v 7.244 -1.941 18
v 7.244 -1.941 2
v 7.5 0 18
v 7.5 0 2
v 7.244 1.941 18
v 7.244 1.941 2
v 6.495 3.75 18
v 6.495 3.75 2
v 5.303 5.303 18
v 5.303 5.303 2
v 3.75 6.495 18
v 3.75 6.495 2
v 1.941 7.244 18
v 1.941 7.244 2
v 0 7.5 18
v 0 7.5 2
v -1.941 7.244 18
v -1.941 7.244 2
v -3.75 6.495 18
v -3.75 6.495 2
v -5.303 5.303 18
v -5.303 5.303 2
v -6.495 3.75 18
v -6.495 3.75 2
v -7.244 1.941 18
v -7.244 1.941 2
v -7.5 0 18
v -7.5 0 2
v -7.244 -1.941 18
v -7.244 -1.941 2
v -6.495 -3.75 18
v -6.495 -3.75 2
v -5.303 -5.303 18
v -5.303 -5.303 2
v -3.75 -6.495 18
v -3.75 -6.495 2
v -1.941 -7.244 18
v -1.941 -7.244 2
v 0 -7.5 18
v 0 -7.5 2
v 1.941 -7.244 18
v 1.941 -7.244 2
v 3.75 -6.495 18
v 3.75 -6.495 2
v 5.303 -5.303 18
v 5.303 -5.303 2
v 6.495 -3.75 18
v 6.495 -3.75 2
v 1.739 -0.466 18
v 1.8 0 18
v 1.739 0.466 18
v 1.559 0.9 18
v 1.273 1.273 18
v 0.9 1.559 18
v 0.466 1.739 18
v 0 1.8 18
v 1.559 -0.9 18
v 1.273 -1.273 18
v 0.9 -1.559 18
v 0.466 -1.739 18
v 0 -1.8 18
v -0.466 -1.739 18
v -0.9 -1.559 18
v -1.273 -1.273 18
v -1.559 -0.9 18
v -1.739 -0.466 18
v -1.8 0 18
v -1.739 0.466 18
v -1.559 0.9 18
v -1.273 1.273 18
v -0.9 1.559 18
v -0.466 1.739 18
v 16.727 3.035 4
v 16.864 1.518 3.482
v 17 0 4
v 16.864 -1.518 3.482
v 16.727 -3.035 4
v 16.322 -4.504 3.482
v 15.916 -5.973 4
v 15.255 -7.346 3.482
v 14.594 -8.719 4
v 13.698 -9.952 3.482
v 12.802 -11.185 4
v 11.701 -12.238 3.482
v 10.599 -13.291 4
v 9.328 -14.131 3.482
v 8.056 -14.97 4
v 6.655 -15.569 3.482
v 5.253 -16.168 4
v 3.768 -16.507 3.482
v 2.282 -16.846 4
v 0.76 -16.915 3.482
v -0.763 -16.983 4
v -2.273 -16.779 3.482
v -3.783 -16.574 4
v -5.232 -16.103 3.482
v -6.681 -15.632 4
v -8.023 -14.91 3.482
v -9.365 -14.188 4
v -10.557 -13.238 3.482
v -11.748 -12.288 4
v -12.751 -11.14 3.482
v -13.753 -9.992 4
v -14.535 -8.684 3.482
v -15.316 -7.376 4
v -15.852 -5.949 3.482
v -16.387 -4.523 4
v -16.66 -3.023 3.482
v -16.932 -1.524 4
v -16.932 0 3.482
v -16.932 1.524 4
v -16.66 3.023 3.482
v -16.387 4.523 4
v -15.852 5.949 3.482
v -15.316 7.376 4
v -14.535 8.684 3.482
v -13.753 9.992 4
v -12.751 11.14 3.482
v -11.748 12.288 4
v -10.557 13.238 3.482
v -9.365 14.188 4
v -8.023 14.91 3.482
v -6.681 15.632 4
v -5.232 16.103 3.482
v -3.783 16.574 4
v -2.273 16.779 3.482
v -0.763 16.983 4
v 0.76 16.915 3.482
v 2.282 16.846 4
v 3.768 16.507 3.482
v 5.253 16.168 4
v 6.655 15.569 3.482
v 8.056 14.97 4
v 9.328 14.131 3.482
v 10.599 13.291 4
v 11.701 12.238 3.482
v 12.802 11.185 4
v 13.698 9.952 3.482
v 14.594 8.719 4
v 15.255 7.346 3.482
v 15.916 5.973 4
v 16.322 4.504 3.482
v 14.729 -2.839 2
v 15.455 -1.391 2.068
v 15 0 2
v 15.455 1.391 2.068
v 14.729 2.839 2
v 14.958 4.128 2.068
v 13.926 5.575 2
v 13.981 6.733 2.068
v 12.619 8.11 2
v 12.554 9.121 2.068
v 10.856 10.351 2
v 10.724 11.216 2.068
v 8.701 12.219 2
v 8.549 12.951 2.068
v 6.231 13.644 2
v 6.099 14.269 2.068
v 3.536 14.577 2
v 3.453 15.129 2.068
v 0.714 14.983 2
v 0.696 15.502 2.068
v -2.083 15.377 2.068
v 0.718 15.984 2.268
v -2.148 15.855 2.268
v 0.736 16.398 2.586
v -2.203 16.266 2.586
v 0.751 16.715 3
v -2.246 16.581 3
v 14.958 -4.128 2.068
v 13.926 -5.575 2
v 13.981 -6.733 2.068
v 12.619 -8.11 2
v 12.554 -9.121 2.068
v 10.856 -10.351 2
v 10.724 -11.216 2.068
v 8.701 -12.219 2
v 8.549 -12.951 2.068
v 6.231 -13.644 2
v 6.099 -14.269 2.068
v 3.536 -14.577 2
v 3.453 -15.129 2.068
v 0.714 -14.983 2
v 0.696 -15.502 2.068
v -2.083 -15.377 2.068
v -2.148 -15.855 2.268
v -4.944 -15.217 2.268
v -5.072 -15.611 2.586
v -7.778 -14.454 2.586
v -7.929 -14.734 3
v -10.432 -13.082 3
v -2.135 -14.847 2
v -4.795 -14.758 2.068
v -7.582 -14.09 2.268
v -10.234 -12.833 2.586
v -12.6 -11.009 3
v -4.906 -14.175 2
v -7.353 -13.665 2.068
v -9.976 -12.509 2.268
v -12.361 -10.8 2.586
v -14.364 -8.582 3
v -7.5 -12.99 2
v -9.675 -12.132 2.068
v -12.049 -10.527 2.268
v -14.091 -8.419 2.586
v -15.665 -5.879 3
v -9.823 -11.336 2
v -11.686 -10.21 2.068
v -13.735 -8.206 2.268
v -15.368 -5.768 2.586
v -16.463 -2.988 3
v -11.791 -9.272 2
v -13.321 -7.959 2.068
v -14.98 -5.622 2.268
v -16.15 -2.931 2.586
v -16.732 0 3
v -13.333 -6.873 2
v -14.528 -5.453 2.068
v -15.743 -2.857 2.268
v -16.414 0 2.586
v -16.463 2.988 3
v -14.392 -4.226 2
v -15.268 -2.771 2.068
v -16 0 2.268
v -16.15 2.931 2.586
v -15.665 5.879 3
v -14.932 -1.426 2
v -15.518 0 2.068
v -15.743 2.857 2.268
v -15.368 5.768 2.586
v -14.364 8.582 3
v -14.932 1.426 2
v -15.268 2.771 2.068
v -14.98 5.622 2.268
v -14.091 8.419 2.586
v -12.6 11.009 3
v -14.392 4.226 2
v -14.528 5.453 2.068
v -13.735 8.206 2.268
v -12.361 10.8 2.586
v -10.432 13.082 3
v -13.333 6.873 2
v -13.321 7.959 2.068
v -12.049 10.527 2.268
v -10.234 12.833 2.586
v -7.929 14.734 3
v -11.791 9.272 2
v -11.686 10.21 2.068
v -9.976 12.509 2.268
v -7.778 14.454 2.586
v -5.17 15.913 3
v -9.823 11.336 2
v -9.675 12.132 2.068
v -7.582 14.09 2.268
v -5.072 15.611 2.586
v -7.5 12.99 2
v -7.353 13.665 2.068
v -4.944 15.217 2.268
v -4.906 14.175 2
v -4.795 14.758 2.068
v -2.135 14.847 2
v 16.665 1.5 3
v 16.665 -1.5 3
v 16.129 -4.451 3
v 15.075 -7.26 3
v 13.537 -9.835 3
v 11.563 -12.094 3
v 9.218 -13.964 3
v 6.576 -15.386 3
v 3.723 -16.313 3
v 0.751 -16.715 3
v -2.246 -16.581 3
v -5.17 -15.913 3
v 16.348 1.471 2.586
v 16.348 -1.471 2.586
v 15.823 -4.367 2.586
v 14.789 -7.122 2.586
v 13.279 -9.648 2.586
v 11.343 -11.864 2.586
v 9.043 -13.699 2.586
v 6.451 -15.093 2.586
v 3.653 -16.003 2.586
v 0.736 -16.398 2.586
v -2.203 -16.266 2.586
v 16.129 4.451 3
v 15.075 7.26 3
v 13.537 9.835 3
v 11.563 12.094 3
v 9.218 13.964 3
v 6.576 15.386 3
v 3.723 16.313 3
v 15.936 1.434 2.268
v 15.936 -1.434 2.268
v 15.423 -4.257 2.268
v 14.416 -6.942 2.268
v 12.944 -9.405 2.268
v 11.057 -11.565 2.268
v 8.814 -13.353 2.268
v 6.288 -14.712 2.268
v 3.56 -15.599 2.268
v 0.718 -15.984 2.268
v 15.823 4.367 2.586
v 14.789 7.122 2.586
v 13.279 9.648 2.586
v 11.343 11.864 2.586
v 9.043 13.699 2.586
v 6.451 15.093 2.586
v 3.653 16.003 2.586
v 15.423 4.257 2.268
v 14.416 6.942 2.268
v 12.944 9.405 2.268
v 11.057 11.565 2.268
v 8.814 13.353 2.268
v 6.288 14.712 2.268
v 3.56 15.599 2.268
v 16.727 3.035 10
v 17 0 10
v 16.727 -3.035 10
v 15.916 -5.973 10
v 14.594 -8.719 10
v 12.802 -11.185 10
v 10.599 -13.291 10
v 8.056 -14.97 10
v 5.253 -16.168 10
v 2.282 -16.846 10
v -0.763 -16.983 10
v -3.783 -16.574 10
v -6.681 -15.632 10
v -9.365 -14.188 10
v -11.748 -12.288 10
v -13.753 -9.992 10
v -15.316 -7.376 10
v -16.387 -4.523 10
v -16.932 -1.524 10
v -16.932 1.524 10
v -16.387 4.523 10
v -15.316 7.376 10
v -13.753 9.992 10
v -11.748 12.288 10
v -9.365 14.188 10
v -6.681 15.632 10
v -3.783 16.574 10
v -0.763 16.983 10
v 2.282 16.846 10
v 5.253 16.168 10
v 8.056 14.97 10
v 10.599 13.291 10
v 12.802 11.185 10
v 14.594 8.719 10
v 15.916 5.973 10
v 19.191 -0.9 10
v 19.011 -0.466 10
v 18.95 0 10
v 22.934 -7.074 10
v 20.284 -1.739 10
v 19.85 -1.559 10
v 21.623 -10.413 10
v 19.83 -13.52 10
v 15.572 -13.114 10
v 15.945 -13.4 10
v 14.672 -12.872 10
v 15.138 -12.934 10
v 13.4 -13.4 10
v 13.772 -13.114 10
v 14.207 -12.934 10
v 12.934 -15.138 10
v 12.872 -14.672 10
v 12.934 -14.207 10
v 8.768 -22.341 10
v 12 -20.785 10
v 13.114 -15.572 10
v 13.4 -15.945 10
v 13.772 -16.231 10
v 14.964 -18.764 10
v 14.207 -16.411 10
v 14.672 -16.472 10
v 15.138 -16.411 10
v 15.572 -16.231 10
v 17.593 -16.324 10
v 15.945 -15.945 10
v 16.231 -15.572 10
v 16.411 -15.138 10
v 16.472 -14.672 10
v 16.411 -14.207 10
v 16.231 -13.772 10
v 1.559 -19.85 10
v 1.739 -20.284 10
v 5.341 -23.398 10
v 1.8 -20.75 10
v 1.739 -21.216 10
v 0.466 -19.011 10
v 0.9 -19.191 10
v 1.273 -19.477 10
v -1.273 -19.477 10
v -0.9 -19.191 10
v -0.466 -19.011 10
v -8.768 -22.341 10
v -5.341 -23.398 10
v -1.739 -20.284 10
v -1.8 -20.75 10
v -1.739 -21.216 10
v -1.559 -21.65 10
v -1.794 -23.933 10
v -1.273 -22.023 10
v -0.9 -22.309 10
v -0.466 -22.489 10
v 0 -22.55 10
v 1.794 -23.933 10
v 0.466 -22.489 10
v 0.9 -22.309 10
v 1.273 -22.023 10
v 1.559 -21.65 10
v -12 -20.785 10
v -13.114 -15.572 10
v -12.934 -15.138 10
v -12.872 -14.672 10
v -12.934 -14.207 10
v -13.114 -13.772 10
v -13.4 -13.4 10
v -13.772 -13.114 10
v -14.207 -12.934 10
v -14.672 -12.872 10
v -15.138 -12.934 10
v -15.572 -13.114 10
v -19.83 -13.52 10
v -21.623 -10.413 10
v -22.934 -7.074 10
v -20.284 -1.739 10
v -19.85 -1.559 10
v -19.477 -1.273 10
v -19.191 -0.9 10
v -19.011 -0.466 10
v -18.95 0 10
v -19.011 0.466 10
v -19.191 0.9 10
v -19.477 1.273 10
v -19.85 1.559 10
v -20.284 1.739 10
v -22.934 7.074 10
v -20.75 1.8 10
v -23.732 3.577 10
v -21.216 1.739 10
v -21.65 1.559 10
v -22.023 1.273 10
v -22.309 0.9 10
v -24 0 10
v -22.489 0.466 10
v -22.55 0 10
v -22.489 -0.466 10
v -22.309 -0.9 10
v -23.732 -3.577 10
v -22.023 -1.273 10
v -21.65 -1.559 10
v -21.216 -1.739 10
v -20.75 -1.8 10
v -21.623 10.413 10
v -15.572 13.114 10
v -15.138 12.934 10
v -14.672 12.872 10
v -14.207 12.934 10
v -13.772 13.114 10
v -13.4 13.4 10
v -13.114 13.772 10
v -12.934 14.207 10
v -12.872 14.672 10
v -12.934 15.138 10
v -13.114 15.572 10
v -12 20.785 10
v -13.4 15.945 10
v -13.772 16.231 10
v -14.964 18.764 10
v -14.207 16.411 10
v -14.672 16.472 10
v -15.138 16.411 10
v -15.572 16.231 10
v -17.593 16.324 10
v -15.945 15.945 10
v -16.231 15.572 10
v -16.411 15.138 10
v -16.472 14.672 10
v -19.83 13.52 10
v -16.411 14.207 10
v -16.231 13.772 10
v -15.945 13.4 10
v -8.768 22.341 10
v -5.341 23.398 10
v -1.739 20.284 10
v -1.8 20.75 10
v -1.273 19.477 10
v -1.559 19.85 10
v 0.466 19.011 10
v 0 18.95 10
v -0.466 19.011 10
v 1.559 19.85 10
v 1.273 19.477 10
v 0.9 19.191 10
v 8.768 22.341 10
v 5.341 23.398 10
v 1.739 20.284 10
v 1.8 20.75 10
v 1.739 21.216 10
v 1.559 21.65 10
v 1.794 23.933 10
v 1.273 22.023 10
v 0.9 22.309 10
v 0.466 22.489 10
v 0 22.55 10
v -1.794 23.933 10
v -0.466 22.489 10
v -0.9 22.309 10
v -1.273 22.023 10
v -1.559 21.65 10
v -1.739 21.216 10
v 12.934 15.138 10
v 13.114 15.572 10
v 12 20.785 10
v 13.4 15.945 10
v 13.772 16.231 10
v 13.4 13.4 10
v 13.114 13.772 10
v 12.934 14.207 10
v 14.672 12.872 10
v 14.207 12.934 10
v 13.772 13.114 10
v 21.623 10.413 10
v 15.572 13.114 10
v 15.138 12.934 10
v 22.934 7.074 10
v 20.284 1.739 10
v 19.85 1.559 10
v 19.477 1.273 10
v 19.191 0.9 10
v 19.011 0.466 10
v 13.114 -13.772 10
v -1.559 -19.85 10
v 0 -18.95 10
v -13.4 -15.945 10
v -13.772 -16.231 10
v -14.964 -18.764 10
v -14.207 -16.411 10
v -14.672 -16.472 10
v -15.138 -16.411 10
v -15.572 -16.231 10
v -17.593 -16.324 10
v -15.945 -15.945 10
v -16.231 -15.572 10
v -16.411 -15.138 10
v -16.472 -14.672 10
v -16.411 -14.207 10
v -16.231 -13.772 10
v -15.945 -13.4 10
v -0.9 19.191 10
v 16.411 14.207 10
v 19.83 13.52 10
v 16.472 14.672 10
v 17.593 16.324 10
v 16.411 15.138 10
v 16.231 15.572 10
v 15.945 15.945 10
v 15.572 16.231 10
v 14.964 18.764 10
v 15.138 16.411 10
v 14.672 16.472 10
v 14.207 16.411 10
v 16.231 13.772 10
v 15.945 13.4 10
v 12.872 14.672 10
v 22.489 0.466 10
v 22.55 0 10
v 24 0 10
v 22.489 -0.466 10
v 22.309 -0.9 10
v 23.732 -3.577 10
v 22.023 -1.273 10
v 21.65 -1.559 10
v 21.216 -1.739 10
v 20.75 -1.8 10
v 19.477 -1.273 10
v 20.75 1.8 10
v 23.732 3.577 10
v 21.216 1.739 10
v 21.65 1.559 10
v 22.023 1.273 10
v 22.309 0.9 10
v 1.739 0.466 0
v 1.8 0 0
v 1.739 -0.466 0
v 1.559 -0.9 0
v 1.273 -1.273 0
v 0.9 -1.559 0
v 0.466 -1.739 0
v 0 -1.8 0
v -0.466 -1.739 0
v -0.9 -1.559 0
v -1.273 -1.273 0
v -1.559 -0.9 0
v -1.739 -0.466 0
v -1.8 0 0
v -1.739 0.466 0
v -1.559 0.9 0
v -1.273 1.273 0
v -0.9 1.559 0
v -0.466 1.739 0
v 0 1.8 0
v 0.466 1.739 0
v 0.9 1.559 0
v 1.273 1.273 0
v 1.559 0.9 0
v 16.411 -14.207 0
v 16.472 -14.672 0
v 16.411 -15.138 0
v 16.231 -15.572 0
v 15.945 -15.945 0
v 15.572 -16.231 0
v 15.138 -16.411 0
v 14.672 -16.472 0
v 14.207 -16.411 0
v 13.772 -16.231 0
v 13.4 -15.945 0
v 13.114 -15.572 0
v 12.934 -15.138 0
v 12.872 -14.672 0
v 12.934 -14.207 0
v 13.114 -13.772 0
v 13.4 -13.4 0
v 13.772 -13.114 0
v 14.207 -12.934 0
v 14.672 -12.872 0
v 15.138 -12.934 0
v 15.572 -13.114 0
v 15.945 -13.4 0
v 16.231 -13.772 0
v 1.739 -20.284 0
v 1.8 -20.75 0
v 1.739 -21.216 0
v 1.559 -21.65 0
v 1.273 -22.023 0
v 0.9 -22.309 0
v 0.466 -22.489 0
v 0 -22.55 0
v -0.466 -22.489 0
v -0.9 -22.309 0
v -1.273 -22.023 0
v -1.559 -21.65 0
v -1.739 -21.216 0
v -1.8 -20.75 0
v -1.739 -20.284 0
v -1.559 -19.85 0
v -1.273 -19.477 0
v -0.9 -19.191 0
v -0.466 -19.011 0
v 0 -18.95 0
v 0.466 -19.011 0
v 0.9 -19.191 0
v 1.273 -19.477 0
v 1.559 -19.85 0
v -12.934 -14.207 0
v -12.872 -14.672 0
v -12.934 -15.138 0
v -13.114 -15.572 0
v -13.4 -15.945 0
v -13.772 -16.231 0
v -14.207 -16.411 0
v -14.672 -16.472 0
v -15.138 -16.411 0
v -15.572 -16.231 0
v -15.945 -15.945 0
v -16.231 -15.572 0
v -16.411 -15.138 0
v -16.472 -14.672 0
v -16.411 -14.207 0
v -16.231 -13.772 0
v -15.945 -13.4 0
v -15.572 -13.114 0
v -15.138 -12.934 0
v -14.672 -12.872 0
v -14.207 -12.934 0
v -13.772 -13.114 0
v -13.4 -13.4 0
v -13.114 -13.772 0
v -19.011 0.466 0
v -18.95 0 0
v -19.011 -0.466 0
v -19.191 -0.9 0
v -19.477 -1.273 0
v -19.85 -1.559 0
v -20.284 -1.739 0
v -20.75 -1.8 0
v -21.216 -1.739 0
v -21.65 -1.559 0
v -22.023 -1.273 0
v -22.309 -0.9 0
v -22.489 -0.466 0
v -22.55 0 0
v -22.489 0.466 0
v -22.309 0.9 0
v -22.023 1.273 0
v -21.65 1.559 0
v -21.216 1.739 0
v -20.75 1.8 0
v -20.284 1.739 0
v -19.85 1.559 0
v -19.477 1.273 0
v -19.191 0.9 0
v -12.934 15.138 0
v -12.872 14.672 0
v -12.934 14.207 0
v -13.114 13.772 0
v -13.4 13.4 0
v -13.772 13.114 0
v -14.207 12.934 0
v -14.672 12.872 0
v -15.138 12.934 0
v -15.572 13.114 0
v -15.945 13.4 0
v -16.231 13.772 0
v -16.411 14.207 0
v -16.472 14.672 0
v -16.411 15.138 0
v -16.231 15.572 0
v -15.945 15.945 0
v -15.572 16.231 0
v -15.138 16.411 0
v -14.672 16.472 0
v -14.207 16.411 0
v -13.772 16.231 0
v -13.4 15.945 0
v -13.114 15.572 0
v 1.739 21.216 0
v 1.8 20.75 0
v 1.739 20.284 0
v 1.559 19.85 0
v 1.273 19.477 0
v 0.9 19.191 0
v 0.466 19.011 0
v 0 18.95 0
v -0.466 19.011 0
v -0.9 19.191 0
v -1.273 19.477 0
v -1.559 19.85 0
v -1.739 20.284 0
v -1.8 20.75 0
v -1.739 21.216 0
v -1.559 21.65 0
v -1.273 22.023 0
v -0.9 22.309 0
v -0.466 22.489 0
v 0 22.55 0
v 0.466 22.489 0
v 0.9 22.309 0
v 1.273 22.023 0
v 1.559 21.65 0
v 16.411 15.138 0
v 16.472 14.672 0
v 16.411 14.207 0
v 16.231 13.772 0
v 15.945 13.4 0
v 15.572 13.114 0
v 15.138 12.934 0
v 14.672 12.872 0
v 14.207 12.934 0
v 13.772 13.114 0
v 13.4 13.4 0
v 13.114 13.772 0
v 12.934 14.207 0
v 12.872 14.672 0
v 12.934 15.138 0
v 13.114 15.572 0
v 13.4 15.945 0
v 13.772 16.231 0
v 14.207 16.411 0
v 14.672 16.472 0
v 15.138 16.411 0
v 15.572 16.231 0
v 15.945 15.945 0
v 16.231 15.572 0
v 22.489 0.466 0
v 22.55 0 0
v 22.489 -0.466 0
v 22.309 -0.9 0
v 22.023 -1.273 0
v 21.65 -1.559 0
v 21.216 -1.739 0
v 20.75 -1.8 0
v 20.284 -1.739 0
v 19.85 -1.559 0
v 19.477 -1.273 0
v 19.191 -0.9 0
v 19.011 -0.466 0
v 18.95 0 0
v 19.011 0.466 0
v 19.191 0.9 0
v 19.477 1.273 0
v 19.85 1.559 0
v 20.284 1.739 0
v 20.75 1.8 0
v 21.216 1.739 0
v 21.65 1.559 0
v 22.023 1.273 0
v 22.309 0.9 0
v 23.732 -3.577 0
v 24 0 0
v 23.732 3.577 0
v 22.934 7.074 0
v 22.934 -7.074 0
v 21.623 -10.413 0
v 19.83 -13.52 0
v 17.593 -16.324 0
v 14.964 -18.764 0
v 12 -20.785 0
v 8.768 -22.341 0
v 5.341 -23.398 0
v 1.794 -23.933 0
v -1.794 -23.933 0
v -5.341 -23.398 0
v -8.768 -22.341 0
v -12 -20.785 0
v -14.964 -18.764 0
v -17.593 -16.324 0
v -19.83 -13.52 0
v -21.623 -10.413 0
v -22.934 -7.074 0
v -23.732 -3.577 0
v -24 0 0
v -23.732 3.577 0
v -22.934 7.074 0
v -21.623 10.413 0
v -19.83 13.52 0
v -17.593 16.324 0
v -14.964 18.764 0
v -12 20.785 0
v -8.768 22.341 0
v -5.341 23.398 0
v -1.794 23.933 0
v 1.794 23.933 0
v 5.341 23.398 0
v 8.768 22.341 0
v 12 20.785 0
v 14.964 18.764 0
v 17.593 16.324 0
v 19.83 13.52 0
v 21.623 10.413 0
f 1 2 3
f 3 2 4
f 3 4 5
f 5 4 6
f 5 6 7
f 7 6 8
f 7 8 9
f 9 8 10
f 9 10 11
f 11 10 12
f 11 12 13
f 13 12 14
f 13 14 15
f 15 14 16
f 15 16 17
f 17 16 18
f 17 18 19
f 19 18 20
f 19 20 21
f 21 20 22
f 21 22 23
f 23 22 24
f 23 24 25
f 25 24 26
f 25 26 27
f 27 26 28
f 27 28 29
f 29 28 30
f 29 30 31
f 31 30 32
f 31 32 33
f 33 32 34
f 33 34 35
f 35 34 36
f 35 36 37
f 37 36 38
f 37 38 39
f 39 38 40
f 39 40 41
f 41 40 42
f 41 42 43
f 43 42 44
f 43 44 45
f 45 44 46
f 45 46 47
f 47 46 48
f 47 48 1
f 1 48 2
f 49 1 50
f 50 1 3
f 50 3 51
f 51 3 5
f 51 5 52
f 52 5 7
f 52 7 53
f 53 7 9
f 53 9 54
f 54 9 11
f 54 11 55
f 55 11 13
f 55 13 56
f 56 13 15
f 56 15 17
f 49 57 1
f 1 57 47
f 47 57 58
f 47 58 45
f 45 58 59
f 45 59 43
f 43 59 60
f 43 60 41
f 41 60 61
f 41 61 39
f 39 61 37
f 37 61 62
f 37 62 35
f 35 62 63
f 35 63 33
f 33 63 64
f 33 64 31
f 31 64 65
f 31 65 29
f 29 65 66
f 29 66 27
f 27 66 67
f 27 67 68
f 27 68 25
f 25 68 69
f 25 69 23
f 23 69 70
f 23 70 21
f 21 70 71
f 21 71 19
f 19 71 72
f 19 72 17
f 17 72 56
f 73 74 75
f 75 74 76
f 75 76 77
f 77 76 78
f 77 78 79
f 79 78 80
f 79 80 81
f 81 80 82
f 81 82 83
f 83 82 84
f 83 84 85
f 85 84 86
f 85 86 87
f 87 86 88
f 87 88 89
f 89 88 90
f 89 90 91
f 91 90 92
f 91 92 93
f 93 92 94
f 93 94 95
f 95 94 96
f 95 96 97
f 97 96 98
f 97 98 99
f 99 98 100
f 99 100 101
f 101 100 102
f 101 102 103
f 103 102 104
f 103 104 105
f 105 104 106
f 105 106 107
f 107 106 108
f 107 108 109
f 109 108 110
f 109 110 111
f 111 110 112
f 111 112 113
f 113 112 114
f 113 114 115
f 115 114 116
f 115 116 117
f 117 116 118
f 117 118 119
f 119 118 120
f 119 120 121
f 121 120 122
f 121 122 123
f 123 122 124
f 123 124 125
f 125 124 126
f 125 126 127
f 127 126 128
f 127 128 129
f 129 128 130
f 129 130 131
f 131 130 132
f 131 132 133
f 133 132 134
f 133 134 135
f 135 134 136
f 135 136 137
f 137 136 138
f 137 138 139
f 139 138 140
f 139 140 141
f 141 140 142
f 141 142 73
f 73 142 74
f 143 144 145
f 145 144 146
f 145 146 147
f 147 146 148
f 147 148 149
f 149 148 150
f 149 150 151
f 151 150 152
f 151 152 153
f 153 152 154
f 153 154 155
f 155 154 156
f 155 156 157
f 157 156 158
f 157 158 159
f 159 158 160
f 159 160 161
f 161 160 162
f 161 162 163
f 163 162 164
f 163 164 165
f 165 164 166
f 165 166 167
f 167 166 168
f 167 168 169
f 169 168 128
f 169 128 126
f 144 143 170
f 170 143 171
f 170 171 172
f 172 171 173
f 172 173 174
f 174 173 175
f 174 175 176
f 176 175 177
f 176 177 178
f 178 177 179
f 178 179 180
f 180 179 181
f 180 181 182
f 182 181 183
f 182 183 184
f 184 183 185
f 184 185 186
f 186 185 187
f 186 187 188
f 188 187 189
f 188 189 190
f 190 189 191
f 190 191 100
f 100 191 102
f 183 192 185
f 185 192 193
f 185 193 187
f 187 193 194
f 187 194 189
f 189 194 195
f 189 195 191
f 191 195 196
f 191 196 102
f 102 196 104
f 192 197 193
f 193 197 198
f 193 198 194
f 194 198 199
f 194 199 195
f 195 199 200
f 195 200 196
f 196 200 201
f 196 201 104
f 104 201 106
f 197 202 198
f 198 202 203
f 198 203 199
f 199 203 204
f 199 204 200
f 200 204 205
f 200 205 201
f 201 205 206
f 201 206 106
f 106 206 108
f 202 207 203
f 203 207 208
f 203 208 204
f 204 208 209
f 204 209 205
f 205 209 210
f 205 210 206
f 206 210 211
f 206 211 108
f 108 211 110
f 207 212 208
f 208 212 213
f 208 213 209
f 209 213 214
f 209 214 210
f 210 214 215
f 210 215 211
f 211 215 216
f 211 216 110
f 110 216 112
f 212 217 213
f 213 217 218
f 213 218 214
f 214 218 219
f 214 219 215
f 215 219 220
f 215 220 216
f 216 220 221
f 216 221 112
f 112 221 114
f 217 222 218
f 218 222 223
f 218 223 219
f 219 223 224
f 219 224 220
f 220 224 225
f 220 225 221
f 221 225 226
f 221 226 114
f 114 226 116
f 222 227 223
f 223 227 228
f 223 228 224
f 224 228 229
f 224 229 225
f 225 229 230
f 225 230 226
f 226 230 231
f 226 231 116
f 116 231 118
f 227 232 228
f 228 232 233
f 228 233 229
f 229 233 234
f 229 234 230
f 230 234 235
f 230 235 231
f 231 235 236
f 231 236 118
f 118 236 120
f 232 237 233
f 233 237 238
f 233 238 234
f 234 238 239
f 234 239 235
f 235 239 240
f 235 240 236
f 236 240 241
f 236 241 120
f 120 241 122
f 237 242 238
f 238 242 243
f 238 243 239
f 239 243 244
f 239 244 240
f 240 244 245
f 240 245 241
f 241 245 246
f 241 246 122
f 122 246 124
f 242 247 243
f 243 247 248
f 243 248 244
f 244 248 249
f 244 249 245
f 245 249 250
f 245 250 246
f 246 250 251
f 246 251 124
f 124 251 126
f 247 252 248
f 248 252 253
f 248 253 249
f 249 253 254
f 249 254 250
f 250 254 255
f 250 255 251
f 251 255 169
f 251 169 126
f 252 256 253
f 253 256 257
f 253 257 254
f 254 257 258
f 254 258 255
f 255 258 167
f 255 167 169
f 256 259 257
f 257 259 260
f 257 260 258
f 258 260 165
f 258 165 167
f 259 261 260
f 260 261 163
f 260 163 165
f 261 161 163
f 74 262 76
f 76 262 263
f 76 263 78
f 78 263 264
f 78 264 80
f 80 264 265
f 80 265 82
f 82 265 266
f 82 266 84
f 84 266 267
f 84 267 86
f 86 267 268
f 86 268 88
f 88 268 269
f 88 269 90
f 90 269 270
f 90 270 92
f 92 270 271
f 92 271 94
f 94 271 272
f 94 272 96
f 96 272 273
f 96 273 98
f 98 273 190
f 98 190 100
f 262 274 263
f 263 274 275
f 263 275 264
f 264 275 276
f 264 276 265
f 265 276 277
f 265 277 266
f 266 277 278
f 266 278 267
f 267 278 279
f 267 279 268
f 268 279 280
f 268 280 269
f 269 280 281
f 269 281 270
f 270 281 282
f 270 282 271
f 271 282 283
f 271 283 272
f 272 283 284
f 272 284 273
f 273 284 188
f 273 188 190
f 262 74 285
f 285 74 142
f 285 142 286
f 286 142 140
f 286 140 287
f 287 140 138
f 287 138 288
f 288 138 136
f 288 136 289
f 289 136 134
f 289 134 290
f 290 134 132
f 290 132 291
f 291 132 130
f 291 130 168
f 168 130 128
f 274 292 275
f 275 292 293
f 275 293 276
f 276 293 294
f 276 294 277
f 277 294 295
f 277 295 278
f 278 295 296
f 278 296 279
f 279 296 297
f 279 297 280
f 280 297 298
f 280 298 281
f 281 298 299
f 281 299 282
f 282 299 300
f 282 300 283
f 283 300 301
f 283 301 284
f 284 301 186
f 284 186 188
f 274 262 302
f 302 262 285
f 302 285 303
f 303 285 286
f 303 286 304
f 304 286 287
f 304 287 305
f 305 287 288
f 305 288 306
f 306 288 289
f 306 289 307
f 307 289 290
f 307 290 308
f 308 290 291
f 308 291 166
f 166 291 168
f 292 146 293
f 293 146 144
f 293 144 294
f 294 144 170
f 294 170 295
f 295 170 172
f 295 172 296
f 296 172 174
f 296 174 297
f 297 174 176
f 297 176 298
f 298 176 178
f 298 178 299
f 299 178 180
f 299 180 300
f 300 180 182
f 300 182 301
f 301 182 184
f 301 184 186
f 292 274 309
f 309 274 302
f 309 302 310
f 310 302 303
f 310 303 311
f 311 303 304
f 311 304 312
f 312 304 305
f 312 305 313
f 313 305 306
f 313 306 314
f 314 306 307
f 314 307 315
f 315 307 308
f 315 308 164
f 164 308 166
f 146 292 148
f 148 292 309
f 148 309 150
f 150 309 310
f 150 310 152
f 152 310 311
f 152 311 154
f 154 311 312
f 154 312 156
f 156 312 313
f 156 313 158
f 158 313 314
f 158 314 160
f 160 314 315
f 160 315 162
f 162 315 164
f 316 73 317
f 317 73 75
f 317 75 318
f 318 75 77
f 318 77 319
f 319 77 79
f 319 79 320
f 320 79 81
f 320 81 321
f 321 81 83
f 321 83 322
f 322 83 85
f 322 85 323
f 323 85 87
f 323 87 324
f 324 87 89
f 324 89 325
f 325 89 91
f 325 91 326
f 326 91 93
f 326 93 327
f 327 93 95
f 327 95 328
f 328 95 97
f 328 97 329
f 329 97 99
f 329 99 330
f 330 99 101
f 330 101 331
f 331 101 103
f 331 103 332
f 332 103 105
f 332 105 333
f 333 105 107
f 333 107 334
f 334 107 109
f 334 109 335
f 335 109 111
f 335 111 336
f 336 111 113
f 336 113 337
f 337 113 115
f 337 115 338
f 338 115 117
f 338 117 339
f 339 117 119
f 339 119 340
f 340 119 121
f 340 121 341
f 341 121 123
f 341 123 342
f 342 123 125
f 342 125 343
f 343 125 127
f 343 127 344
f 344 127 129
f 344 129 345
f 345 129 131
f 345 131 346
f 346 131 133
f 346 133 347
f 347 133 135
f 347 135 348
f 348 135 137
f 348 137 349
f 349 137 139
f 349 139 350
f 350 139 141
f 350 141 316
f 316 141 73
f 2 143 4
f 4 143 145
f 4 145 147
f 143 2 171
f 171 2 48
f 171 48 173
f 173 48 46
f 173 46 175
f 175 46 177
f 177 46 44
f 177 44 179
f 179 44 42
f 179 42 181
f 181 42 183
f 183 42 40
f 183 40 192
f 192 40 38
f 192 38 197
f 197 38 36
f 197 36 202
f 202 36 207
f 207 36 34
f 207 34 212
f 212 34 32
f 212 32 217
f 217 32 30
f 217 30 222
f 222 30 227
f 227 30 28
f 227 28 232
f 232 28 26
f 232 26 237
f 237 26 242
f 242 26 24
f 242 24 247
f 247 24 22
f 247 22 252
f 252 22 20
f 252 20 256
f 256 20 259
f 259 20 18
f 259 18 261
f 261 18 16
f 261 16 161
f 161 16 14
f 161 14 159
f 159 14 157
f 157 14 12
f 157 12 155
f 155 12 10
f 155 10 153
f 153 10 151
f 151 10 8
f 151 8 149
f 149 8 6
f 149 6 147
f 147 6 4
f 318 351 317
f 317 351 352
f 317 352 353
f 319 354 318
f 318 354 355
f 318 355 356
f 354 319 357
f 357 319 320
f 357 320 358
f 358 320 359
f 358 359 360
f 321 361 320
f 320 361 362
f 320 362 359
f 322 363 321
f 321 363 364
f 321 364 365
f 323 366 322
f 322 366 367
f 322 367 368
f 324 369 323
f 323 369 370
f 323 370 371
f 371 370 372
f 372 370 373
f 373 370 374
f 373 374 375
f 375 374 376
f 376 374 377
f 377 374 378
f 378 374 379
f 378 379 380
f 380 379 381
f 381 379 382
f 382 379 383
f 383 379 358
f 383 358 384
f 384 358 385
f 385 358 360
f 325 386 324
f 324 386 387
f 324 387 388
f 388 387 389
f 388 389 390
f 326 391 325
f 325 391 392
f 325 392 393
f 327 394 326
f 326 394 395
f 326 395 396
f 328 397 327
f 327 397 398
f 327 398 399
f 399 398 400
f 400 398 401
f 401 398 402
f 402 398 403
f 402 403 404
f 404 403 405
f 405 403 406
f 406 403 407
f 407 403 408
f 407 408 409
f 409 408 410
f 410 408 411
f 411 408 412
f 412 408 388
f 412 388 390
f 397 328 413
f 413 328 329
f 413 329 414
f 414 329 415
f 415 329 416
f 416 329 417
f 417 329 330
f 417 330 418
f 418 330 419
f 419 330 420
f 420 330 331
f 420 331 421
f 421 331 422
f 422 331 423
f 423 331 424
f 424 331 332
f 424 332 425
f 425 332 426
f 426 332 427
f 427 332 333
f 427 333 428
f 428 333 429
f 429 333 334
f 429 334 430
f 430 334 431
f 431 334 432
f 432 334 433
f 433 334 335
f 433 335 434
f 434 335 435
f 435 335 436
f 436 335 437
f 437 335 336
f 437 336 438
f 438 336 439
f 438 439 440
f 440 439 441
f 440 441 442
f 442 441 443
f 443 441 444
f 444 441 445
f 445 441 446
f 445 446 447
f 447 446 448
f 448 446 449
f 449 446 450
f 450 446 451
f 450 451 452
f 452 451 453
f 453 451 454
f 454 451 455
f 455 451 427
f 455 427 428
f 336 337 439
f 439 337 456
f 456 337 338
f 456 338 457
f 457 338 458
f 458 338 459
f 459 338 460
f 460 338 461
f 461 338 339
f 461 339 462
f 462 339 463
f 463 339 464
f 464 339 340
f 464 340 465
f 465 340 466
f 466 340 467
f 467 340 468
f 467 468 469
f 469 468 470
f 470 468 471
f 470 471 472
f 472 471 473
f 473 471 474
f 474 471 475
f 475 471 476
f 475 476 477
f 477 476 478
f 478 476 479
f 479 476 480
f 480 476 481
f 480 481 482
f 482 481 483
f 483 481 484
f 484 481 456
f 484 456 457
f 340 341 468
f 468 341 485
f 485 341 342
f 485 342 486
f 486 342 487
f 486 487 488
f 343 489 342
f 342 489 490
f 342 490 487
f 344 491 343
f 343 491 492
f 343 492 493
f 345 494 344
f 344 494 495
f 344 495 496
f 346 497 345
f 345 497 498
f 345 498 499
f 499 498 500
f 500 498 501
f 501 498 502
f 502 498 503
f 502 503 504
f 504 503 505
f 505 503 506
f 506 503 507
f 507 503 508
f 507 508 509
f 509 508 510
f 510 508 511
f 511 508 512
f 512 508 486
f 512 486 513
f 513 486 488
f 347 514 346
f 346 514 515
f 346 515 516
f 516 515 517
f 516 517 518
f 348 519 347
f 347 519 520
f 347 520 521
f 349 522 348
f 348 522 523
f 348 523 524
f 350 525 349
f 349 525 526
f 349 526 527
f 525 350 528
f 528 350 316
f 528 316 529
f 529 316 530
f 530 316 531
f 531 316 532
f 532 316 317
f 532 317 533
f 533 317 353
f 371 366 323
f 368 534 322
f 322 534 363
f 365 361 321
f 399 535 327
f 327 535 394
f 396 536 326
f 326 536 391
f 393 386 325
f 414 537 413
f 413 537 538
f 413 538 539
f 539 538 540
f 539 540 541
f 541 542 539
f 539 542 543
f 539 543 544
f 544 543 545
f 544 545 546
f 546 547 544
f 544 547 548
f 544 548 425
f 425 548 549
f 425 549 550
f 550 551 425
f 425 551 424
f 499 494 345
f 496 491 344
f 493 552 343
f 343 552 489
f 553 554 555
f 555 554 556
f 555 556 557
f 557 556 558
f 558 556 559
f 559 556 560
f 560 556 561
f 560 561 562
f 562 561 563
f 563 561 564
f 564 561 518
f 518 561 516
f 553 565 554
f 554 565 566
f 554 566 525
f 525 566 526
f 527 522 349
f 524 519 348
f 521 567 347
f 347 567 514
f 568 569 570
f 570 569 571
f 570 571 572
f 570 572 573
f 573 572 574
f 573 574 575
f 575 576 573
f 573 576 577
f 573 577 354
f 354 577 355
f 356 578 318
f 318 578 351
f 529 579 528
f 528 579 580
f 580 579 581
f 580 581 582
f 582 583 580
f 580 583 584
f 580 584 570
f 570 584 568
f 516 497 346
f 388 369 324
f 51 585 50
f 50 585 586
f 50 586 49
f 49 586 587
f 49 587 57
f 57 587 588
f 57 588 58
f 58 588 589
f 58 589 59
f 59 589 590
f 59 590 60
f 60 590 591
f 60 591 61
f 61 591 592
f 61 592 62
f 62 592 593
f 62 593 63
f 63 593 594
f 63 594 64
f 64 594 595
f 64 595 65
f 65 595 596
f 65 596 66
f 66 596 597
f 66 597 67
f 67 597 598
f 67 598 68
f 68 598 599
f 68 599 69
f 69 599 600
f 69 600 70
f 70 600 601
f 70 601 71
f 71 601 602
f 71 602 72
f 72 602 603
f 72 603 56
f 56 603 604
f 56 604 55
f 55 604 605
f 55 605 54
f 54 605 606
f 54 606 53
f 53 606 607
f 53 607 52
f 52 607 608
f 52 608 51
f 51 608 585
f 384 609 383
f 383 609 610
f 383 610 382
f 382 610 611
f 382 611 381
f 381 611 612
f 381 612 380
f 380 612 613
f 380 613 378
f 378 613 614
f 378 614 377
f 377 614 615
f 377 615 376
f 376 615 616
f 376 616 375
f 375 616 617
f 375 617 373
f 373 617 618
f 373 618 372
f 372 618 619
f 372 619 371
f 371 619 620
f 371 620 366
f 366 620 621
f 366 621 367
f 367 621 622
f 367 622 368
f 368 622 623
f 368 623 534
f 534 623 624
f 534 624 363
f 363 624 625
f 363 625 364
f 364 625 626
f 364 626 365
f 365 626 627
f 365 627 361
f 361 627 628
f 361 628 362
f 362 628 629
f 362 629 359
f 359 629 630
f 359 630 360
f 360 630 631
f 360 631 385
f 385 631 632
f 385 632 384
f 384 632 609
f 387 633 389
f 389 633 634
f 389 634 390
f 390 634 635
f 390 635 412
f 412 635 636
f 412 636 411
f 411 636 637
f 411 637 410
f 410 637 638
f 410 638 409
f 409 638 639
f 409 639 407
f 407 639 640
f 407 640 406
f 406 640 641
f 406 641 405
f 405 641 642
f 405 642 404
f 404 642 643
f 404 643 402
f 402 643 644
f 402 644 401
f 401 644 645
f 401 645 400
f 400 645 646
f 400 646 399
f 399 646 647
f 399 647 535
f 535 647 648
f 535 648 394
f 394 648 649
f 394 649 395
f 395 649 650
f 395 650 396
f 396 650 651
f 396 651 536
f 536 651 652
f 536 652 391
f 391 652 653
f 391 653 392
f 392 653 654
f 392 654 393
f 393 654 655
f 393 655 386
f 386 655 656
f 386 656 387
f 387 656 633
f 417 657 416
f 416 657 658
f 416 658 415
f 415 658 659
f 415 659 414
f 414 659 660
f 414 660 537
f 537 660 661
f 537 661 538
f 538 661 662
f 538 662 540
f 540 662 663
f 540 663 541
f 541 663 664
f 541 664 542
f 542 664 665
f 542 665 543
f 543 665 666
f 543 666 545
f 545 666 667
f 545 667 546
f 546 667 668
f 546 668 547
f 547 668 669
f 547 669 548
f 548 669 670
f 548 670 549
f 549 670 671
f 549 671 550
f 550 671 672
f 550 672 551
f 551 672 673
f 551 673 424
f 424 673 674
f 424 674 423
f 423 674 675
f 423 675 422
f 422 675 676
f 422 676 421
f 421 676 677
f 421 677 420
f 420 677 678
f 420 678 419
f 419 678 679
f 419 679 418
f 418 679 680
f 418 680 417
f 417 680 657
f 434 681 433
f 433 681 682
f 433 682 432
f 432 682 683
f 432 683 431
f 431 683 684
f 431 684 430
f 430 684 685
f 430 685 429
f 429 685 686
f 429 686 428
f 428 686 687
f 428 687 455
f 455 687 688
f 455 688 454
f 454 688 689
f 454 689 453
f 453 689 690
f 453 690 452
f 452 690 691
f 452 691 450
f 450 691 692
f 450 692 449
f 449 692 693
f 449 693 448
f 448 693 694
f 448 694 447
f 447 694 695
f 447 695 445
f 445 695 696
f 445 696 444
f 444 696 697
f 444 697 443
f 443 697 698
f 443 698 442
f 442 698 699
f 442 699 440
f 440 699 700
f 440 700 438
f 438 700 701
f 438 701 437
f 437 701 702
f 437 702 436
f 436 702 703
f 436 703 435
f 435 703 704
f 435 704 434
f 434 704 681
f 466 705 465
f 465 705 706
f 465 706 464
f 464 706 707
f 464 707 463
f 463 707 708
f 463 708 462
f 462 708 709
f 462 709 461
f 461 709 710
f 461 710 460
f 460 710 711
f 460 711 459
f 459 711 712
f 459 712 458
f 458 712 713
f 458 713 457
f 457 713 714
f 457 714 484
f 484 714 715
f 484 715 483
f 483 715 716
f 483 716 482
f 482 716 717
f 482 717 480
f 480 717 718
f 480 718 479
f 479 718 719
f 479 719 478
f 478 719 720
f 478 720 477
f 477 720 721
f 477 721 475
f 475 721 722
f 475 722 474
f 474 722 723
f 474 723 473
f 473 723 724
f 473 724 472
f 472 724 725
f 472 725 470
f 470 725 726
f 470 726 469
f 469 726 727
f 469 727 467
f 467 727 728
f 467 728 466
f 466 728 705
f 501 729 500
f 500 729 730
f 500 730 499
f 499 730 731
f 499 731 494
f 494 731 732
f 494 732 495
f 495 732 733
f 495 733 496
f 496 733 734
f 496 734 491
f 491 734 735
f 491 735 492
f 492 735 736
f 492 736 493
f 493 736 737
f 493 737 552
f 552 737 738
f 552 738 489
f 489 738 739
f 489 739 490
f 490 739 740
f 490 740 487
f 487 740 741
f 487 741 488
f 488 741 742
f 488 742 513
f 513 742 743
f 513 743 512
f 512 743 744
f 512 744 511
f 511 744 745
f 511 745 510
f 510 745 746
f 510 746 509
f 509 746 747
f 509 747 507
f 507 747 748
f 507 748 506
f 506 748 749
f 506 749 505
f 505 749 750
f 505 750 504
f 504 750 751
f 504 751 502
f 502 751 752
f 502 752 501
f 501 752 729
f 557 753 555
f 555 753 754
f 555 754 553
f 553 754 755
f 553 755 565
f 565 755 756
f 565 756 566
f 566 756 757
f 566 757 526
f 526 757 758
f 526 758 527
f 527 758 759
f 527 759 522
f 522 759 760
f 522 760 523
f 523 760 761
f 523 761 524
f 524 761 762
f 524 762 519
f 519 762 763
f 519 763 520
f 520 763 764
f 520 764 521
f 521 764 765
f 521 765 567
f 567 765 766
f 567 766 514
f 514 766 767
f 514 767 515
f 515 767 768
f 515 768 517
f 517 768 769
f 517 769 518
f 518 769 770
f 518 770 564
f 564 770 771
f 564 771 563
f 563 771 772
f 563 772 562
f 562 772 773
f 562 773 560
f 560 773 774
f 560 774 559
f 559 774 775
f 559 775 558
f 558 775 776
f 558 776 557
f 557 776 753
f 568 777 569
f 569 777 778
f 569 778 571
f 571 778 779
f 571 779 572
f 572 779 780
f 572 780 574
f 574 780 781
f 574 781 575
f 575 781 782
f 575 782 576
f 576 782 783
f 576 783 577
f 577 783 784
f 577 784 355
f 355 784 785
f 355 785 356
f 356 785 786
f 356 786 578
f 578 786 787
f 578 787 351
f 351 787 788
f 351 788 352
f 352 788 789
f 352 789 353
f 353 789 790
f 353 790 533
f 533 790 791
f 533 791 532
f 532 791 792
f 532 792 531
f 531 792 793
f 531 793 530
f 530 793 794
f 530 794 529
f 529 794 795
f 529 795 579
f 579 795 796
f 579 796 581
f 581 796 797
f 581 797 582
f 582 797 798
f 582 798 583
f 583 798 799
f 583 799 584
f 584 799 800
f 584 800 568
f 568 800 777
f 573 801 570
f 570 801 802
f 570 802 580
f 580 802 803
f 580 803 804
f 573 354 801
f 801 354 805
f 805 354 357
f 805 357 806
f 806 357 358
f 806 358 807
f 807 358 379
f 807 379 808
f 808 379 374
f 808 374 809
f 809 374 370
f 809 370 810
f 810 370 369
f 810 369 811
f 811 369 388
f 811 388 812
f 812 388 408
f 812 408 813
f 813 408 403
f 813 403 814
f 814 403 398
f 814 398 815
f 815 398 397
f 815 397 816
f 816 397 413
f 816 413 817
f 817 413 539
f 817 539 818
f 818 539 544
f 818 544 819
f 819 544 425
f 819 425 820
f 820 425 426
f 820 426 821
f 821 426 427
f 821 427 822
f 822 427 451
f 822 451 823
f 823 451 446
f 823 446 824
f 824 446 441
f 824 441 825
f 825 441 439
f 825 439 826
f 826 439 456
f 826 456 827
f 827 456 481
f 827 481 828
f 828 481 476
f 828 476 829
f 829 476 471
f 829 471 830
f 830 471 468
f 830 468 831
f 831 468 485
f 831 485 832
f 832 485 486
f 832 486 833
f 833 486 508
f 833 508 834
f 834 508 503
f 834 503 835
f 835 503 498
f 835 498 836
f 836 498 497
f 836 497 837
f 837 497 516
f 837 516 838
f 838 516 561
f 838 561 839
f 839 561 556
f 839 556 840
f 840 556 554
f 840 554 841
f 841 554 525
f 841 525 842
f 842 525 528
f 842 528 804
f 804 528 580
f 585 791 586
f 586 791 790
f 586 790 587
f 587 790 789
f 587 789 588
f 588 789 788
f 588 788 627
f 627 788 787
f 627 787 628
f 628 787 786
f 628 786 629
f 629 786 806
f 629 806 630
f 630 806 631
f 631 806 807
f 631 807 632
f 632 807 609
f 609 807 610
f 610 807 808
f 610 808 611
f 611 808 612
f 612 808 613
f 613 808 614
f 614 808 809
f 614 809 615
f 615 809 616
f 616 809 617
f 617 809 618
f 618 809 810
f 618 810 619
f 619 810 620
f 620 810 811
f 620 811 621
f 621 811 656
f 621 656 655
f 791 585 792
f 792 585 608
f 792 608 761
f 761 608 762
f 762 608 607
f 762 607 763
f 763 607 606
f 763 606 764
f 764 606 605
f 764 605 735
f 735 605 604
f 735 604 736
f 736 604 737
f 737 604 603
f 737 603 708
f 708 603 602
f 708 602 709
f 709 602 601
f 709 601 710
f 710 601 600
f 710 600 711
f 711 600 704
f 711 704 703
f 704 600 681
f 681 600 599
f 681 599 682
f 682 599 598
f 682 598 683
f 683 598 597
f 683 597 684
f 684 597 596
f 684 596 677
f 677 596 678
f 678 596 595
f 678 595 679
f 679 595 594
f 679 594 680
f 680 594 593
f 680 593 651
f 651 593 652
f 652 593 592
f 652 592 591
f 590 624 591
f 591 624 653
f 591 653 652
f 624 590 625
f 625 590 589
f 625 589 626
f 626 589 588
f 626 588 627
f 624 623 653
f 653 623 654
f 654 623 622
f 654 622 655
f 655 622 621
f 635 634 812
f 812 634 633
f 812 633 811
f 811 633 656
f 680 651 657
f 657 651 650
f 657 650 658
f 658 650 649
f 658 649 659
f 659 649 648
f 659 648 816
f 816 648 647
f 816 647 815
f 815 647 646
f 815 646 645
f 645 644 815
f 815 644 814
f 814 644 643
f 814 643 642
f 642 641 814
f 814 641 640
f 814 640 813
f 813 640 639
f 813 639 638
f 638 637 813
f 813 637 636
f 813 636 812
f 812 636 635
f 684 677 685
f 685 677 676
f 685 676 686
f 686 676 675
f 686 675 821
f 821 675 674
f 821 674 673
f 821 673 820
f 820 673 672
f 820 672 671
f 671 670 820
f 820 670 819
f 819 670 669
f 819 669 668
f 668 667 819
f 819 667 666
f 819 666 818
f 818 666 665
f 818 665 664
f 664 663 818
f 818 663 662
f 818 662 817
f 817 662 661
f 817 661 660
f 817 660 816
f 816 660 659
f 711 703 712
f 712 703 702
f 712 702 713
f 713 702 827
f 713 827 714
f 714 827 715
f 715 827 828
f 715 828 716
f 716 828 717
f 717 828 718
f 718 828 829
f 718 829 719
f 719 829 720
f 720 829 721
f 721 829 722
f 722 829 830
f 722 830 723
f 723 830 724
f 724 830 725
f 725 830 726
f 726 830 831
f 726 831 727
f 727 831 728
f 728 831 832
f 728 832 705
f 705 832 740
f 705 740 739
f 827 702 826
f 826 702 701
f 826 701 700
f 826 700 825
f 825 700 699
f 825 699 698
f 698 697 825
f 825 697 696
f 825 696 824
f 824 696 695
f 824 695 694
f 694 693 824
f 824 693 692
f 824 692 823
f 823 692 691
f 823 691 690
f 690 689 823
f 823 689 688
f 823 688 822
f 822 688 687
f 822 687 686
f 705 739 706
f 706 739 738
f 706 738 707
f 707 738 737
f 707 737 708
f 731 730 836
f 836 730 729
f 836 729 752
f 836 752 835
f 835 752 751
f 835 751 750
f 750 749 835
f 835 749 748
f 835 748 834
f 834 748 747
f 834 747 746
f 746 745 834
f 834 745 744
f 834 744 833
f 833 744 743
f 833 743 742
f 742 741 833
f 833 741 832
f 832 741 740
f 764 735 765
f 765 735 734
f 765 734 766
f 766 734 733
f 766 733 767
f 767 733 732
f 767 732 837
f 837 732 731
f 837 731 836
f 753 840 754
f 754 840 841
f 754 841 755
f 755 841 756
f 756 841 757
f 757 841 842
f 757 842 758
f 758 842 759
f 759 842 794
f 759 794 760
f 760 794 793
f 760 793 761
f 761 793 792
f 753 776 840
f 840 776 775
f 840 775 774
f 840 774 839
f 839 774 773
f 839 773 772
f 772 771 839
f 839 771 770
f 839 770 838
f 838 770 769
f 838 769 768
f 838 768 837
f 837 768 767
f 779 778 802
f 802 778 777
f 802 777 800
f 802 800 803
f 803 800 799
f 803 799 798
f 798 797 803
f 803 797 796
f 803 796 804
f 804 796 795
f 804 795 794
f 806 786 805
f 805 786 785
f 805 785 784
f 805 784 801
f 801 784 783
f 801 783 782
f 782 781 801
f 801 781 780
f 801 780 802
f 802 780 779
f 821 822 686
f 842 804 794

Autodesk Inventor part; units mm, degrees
ref_plane "YZ Plane" through (0, 0, 0) normal (1, 0, 0) x (0, 1, 0)
ref_plane "XZ Plane" through (0, 0, 0) normal (0, 1, 0) x (-1, 0, 0)
ref_plane "XY Plane" through (0, 0, 0) normal (0, 0, 1) x (1, 0, 0)
sketch "Sketch1" plane through (0, 0, 0) normal (0, 0, 1) x (1, 0, 0)
  circle A0 centre (0, 0) radius 1.8
  circle A1 centre (0, 0) radius 17
  circle A2 centre (0, 0) radius 7.5
  circle A3 centre (0, 0) radius 24
  circle A4 centre (20.75, 0) radius 1.8
  circle A5 centre (14.6725, 14.6725) radius 1.8
  circle A6 centre (0, 20.75) radius 1.8
  circle A7 centre (-14.6725, 14.6725) radius 1.8
  circle A8 centre (-20.75, 0) radius 1.8
  circle A9 centre (-14.6725, -14.6725) radius 1.8
  circle A10 centre (0, -20.75) radius 1.8
  circle A11 centre (14.6725, -14.6725) radius 1.8
  dimension "d0" = 3.6
  dimension "d1" = 34
  dimension "d2" = 15
  dimension "d3" = 48
  dimension "d4" = 3.6
  dimension "d5" = 20.75
  dimension "d8" = 360
extrude "Extrusion1" add sketch "Sketch1" along normal blind 2 contours A1 | A2 | A3
extrude "Extrusion2" add sketch "Sketch1" along normal blind 10 contours A3
fillet "Fillet1" radius 2 1 edges at (-17, 0, 2)
extrude "Extrusion3" add sketch "Sketch1" along normal blind 18 contours A2
properties part number "MoldeB"
